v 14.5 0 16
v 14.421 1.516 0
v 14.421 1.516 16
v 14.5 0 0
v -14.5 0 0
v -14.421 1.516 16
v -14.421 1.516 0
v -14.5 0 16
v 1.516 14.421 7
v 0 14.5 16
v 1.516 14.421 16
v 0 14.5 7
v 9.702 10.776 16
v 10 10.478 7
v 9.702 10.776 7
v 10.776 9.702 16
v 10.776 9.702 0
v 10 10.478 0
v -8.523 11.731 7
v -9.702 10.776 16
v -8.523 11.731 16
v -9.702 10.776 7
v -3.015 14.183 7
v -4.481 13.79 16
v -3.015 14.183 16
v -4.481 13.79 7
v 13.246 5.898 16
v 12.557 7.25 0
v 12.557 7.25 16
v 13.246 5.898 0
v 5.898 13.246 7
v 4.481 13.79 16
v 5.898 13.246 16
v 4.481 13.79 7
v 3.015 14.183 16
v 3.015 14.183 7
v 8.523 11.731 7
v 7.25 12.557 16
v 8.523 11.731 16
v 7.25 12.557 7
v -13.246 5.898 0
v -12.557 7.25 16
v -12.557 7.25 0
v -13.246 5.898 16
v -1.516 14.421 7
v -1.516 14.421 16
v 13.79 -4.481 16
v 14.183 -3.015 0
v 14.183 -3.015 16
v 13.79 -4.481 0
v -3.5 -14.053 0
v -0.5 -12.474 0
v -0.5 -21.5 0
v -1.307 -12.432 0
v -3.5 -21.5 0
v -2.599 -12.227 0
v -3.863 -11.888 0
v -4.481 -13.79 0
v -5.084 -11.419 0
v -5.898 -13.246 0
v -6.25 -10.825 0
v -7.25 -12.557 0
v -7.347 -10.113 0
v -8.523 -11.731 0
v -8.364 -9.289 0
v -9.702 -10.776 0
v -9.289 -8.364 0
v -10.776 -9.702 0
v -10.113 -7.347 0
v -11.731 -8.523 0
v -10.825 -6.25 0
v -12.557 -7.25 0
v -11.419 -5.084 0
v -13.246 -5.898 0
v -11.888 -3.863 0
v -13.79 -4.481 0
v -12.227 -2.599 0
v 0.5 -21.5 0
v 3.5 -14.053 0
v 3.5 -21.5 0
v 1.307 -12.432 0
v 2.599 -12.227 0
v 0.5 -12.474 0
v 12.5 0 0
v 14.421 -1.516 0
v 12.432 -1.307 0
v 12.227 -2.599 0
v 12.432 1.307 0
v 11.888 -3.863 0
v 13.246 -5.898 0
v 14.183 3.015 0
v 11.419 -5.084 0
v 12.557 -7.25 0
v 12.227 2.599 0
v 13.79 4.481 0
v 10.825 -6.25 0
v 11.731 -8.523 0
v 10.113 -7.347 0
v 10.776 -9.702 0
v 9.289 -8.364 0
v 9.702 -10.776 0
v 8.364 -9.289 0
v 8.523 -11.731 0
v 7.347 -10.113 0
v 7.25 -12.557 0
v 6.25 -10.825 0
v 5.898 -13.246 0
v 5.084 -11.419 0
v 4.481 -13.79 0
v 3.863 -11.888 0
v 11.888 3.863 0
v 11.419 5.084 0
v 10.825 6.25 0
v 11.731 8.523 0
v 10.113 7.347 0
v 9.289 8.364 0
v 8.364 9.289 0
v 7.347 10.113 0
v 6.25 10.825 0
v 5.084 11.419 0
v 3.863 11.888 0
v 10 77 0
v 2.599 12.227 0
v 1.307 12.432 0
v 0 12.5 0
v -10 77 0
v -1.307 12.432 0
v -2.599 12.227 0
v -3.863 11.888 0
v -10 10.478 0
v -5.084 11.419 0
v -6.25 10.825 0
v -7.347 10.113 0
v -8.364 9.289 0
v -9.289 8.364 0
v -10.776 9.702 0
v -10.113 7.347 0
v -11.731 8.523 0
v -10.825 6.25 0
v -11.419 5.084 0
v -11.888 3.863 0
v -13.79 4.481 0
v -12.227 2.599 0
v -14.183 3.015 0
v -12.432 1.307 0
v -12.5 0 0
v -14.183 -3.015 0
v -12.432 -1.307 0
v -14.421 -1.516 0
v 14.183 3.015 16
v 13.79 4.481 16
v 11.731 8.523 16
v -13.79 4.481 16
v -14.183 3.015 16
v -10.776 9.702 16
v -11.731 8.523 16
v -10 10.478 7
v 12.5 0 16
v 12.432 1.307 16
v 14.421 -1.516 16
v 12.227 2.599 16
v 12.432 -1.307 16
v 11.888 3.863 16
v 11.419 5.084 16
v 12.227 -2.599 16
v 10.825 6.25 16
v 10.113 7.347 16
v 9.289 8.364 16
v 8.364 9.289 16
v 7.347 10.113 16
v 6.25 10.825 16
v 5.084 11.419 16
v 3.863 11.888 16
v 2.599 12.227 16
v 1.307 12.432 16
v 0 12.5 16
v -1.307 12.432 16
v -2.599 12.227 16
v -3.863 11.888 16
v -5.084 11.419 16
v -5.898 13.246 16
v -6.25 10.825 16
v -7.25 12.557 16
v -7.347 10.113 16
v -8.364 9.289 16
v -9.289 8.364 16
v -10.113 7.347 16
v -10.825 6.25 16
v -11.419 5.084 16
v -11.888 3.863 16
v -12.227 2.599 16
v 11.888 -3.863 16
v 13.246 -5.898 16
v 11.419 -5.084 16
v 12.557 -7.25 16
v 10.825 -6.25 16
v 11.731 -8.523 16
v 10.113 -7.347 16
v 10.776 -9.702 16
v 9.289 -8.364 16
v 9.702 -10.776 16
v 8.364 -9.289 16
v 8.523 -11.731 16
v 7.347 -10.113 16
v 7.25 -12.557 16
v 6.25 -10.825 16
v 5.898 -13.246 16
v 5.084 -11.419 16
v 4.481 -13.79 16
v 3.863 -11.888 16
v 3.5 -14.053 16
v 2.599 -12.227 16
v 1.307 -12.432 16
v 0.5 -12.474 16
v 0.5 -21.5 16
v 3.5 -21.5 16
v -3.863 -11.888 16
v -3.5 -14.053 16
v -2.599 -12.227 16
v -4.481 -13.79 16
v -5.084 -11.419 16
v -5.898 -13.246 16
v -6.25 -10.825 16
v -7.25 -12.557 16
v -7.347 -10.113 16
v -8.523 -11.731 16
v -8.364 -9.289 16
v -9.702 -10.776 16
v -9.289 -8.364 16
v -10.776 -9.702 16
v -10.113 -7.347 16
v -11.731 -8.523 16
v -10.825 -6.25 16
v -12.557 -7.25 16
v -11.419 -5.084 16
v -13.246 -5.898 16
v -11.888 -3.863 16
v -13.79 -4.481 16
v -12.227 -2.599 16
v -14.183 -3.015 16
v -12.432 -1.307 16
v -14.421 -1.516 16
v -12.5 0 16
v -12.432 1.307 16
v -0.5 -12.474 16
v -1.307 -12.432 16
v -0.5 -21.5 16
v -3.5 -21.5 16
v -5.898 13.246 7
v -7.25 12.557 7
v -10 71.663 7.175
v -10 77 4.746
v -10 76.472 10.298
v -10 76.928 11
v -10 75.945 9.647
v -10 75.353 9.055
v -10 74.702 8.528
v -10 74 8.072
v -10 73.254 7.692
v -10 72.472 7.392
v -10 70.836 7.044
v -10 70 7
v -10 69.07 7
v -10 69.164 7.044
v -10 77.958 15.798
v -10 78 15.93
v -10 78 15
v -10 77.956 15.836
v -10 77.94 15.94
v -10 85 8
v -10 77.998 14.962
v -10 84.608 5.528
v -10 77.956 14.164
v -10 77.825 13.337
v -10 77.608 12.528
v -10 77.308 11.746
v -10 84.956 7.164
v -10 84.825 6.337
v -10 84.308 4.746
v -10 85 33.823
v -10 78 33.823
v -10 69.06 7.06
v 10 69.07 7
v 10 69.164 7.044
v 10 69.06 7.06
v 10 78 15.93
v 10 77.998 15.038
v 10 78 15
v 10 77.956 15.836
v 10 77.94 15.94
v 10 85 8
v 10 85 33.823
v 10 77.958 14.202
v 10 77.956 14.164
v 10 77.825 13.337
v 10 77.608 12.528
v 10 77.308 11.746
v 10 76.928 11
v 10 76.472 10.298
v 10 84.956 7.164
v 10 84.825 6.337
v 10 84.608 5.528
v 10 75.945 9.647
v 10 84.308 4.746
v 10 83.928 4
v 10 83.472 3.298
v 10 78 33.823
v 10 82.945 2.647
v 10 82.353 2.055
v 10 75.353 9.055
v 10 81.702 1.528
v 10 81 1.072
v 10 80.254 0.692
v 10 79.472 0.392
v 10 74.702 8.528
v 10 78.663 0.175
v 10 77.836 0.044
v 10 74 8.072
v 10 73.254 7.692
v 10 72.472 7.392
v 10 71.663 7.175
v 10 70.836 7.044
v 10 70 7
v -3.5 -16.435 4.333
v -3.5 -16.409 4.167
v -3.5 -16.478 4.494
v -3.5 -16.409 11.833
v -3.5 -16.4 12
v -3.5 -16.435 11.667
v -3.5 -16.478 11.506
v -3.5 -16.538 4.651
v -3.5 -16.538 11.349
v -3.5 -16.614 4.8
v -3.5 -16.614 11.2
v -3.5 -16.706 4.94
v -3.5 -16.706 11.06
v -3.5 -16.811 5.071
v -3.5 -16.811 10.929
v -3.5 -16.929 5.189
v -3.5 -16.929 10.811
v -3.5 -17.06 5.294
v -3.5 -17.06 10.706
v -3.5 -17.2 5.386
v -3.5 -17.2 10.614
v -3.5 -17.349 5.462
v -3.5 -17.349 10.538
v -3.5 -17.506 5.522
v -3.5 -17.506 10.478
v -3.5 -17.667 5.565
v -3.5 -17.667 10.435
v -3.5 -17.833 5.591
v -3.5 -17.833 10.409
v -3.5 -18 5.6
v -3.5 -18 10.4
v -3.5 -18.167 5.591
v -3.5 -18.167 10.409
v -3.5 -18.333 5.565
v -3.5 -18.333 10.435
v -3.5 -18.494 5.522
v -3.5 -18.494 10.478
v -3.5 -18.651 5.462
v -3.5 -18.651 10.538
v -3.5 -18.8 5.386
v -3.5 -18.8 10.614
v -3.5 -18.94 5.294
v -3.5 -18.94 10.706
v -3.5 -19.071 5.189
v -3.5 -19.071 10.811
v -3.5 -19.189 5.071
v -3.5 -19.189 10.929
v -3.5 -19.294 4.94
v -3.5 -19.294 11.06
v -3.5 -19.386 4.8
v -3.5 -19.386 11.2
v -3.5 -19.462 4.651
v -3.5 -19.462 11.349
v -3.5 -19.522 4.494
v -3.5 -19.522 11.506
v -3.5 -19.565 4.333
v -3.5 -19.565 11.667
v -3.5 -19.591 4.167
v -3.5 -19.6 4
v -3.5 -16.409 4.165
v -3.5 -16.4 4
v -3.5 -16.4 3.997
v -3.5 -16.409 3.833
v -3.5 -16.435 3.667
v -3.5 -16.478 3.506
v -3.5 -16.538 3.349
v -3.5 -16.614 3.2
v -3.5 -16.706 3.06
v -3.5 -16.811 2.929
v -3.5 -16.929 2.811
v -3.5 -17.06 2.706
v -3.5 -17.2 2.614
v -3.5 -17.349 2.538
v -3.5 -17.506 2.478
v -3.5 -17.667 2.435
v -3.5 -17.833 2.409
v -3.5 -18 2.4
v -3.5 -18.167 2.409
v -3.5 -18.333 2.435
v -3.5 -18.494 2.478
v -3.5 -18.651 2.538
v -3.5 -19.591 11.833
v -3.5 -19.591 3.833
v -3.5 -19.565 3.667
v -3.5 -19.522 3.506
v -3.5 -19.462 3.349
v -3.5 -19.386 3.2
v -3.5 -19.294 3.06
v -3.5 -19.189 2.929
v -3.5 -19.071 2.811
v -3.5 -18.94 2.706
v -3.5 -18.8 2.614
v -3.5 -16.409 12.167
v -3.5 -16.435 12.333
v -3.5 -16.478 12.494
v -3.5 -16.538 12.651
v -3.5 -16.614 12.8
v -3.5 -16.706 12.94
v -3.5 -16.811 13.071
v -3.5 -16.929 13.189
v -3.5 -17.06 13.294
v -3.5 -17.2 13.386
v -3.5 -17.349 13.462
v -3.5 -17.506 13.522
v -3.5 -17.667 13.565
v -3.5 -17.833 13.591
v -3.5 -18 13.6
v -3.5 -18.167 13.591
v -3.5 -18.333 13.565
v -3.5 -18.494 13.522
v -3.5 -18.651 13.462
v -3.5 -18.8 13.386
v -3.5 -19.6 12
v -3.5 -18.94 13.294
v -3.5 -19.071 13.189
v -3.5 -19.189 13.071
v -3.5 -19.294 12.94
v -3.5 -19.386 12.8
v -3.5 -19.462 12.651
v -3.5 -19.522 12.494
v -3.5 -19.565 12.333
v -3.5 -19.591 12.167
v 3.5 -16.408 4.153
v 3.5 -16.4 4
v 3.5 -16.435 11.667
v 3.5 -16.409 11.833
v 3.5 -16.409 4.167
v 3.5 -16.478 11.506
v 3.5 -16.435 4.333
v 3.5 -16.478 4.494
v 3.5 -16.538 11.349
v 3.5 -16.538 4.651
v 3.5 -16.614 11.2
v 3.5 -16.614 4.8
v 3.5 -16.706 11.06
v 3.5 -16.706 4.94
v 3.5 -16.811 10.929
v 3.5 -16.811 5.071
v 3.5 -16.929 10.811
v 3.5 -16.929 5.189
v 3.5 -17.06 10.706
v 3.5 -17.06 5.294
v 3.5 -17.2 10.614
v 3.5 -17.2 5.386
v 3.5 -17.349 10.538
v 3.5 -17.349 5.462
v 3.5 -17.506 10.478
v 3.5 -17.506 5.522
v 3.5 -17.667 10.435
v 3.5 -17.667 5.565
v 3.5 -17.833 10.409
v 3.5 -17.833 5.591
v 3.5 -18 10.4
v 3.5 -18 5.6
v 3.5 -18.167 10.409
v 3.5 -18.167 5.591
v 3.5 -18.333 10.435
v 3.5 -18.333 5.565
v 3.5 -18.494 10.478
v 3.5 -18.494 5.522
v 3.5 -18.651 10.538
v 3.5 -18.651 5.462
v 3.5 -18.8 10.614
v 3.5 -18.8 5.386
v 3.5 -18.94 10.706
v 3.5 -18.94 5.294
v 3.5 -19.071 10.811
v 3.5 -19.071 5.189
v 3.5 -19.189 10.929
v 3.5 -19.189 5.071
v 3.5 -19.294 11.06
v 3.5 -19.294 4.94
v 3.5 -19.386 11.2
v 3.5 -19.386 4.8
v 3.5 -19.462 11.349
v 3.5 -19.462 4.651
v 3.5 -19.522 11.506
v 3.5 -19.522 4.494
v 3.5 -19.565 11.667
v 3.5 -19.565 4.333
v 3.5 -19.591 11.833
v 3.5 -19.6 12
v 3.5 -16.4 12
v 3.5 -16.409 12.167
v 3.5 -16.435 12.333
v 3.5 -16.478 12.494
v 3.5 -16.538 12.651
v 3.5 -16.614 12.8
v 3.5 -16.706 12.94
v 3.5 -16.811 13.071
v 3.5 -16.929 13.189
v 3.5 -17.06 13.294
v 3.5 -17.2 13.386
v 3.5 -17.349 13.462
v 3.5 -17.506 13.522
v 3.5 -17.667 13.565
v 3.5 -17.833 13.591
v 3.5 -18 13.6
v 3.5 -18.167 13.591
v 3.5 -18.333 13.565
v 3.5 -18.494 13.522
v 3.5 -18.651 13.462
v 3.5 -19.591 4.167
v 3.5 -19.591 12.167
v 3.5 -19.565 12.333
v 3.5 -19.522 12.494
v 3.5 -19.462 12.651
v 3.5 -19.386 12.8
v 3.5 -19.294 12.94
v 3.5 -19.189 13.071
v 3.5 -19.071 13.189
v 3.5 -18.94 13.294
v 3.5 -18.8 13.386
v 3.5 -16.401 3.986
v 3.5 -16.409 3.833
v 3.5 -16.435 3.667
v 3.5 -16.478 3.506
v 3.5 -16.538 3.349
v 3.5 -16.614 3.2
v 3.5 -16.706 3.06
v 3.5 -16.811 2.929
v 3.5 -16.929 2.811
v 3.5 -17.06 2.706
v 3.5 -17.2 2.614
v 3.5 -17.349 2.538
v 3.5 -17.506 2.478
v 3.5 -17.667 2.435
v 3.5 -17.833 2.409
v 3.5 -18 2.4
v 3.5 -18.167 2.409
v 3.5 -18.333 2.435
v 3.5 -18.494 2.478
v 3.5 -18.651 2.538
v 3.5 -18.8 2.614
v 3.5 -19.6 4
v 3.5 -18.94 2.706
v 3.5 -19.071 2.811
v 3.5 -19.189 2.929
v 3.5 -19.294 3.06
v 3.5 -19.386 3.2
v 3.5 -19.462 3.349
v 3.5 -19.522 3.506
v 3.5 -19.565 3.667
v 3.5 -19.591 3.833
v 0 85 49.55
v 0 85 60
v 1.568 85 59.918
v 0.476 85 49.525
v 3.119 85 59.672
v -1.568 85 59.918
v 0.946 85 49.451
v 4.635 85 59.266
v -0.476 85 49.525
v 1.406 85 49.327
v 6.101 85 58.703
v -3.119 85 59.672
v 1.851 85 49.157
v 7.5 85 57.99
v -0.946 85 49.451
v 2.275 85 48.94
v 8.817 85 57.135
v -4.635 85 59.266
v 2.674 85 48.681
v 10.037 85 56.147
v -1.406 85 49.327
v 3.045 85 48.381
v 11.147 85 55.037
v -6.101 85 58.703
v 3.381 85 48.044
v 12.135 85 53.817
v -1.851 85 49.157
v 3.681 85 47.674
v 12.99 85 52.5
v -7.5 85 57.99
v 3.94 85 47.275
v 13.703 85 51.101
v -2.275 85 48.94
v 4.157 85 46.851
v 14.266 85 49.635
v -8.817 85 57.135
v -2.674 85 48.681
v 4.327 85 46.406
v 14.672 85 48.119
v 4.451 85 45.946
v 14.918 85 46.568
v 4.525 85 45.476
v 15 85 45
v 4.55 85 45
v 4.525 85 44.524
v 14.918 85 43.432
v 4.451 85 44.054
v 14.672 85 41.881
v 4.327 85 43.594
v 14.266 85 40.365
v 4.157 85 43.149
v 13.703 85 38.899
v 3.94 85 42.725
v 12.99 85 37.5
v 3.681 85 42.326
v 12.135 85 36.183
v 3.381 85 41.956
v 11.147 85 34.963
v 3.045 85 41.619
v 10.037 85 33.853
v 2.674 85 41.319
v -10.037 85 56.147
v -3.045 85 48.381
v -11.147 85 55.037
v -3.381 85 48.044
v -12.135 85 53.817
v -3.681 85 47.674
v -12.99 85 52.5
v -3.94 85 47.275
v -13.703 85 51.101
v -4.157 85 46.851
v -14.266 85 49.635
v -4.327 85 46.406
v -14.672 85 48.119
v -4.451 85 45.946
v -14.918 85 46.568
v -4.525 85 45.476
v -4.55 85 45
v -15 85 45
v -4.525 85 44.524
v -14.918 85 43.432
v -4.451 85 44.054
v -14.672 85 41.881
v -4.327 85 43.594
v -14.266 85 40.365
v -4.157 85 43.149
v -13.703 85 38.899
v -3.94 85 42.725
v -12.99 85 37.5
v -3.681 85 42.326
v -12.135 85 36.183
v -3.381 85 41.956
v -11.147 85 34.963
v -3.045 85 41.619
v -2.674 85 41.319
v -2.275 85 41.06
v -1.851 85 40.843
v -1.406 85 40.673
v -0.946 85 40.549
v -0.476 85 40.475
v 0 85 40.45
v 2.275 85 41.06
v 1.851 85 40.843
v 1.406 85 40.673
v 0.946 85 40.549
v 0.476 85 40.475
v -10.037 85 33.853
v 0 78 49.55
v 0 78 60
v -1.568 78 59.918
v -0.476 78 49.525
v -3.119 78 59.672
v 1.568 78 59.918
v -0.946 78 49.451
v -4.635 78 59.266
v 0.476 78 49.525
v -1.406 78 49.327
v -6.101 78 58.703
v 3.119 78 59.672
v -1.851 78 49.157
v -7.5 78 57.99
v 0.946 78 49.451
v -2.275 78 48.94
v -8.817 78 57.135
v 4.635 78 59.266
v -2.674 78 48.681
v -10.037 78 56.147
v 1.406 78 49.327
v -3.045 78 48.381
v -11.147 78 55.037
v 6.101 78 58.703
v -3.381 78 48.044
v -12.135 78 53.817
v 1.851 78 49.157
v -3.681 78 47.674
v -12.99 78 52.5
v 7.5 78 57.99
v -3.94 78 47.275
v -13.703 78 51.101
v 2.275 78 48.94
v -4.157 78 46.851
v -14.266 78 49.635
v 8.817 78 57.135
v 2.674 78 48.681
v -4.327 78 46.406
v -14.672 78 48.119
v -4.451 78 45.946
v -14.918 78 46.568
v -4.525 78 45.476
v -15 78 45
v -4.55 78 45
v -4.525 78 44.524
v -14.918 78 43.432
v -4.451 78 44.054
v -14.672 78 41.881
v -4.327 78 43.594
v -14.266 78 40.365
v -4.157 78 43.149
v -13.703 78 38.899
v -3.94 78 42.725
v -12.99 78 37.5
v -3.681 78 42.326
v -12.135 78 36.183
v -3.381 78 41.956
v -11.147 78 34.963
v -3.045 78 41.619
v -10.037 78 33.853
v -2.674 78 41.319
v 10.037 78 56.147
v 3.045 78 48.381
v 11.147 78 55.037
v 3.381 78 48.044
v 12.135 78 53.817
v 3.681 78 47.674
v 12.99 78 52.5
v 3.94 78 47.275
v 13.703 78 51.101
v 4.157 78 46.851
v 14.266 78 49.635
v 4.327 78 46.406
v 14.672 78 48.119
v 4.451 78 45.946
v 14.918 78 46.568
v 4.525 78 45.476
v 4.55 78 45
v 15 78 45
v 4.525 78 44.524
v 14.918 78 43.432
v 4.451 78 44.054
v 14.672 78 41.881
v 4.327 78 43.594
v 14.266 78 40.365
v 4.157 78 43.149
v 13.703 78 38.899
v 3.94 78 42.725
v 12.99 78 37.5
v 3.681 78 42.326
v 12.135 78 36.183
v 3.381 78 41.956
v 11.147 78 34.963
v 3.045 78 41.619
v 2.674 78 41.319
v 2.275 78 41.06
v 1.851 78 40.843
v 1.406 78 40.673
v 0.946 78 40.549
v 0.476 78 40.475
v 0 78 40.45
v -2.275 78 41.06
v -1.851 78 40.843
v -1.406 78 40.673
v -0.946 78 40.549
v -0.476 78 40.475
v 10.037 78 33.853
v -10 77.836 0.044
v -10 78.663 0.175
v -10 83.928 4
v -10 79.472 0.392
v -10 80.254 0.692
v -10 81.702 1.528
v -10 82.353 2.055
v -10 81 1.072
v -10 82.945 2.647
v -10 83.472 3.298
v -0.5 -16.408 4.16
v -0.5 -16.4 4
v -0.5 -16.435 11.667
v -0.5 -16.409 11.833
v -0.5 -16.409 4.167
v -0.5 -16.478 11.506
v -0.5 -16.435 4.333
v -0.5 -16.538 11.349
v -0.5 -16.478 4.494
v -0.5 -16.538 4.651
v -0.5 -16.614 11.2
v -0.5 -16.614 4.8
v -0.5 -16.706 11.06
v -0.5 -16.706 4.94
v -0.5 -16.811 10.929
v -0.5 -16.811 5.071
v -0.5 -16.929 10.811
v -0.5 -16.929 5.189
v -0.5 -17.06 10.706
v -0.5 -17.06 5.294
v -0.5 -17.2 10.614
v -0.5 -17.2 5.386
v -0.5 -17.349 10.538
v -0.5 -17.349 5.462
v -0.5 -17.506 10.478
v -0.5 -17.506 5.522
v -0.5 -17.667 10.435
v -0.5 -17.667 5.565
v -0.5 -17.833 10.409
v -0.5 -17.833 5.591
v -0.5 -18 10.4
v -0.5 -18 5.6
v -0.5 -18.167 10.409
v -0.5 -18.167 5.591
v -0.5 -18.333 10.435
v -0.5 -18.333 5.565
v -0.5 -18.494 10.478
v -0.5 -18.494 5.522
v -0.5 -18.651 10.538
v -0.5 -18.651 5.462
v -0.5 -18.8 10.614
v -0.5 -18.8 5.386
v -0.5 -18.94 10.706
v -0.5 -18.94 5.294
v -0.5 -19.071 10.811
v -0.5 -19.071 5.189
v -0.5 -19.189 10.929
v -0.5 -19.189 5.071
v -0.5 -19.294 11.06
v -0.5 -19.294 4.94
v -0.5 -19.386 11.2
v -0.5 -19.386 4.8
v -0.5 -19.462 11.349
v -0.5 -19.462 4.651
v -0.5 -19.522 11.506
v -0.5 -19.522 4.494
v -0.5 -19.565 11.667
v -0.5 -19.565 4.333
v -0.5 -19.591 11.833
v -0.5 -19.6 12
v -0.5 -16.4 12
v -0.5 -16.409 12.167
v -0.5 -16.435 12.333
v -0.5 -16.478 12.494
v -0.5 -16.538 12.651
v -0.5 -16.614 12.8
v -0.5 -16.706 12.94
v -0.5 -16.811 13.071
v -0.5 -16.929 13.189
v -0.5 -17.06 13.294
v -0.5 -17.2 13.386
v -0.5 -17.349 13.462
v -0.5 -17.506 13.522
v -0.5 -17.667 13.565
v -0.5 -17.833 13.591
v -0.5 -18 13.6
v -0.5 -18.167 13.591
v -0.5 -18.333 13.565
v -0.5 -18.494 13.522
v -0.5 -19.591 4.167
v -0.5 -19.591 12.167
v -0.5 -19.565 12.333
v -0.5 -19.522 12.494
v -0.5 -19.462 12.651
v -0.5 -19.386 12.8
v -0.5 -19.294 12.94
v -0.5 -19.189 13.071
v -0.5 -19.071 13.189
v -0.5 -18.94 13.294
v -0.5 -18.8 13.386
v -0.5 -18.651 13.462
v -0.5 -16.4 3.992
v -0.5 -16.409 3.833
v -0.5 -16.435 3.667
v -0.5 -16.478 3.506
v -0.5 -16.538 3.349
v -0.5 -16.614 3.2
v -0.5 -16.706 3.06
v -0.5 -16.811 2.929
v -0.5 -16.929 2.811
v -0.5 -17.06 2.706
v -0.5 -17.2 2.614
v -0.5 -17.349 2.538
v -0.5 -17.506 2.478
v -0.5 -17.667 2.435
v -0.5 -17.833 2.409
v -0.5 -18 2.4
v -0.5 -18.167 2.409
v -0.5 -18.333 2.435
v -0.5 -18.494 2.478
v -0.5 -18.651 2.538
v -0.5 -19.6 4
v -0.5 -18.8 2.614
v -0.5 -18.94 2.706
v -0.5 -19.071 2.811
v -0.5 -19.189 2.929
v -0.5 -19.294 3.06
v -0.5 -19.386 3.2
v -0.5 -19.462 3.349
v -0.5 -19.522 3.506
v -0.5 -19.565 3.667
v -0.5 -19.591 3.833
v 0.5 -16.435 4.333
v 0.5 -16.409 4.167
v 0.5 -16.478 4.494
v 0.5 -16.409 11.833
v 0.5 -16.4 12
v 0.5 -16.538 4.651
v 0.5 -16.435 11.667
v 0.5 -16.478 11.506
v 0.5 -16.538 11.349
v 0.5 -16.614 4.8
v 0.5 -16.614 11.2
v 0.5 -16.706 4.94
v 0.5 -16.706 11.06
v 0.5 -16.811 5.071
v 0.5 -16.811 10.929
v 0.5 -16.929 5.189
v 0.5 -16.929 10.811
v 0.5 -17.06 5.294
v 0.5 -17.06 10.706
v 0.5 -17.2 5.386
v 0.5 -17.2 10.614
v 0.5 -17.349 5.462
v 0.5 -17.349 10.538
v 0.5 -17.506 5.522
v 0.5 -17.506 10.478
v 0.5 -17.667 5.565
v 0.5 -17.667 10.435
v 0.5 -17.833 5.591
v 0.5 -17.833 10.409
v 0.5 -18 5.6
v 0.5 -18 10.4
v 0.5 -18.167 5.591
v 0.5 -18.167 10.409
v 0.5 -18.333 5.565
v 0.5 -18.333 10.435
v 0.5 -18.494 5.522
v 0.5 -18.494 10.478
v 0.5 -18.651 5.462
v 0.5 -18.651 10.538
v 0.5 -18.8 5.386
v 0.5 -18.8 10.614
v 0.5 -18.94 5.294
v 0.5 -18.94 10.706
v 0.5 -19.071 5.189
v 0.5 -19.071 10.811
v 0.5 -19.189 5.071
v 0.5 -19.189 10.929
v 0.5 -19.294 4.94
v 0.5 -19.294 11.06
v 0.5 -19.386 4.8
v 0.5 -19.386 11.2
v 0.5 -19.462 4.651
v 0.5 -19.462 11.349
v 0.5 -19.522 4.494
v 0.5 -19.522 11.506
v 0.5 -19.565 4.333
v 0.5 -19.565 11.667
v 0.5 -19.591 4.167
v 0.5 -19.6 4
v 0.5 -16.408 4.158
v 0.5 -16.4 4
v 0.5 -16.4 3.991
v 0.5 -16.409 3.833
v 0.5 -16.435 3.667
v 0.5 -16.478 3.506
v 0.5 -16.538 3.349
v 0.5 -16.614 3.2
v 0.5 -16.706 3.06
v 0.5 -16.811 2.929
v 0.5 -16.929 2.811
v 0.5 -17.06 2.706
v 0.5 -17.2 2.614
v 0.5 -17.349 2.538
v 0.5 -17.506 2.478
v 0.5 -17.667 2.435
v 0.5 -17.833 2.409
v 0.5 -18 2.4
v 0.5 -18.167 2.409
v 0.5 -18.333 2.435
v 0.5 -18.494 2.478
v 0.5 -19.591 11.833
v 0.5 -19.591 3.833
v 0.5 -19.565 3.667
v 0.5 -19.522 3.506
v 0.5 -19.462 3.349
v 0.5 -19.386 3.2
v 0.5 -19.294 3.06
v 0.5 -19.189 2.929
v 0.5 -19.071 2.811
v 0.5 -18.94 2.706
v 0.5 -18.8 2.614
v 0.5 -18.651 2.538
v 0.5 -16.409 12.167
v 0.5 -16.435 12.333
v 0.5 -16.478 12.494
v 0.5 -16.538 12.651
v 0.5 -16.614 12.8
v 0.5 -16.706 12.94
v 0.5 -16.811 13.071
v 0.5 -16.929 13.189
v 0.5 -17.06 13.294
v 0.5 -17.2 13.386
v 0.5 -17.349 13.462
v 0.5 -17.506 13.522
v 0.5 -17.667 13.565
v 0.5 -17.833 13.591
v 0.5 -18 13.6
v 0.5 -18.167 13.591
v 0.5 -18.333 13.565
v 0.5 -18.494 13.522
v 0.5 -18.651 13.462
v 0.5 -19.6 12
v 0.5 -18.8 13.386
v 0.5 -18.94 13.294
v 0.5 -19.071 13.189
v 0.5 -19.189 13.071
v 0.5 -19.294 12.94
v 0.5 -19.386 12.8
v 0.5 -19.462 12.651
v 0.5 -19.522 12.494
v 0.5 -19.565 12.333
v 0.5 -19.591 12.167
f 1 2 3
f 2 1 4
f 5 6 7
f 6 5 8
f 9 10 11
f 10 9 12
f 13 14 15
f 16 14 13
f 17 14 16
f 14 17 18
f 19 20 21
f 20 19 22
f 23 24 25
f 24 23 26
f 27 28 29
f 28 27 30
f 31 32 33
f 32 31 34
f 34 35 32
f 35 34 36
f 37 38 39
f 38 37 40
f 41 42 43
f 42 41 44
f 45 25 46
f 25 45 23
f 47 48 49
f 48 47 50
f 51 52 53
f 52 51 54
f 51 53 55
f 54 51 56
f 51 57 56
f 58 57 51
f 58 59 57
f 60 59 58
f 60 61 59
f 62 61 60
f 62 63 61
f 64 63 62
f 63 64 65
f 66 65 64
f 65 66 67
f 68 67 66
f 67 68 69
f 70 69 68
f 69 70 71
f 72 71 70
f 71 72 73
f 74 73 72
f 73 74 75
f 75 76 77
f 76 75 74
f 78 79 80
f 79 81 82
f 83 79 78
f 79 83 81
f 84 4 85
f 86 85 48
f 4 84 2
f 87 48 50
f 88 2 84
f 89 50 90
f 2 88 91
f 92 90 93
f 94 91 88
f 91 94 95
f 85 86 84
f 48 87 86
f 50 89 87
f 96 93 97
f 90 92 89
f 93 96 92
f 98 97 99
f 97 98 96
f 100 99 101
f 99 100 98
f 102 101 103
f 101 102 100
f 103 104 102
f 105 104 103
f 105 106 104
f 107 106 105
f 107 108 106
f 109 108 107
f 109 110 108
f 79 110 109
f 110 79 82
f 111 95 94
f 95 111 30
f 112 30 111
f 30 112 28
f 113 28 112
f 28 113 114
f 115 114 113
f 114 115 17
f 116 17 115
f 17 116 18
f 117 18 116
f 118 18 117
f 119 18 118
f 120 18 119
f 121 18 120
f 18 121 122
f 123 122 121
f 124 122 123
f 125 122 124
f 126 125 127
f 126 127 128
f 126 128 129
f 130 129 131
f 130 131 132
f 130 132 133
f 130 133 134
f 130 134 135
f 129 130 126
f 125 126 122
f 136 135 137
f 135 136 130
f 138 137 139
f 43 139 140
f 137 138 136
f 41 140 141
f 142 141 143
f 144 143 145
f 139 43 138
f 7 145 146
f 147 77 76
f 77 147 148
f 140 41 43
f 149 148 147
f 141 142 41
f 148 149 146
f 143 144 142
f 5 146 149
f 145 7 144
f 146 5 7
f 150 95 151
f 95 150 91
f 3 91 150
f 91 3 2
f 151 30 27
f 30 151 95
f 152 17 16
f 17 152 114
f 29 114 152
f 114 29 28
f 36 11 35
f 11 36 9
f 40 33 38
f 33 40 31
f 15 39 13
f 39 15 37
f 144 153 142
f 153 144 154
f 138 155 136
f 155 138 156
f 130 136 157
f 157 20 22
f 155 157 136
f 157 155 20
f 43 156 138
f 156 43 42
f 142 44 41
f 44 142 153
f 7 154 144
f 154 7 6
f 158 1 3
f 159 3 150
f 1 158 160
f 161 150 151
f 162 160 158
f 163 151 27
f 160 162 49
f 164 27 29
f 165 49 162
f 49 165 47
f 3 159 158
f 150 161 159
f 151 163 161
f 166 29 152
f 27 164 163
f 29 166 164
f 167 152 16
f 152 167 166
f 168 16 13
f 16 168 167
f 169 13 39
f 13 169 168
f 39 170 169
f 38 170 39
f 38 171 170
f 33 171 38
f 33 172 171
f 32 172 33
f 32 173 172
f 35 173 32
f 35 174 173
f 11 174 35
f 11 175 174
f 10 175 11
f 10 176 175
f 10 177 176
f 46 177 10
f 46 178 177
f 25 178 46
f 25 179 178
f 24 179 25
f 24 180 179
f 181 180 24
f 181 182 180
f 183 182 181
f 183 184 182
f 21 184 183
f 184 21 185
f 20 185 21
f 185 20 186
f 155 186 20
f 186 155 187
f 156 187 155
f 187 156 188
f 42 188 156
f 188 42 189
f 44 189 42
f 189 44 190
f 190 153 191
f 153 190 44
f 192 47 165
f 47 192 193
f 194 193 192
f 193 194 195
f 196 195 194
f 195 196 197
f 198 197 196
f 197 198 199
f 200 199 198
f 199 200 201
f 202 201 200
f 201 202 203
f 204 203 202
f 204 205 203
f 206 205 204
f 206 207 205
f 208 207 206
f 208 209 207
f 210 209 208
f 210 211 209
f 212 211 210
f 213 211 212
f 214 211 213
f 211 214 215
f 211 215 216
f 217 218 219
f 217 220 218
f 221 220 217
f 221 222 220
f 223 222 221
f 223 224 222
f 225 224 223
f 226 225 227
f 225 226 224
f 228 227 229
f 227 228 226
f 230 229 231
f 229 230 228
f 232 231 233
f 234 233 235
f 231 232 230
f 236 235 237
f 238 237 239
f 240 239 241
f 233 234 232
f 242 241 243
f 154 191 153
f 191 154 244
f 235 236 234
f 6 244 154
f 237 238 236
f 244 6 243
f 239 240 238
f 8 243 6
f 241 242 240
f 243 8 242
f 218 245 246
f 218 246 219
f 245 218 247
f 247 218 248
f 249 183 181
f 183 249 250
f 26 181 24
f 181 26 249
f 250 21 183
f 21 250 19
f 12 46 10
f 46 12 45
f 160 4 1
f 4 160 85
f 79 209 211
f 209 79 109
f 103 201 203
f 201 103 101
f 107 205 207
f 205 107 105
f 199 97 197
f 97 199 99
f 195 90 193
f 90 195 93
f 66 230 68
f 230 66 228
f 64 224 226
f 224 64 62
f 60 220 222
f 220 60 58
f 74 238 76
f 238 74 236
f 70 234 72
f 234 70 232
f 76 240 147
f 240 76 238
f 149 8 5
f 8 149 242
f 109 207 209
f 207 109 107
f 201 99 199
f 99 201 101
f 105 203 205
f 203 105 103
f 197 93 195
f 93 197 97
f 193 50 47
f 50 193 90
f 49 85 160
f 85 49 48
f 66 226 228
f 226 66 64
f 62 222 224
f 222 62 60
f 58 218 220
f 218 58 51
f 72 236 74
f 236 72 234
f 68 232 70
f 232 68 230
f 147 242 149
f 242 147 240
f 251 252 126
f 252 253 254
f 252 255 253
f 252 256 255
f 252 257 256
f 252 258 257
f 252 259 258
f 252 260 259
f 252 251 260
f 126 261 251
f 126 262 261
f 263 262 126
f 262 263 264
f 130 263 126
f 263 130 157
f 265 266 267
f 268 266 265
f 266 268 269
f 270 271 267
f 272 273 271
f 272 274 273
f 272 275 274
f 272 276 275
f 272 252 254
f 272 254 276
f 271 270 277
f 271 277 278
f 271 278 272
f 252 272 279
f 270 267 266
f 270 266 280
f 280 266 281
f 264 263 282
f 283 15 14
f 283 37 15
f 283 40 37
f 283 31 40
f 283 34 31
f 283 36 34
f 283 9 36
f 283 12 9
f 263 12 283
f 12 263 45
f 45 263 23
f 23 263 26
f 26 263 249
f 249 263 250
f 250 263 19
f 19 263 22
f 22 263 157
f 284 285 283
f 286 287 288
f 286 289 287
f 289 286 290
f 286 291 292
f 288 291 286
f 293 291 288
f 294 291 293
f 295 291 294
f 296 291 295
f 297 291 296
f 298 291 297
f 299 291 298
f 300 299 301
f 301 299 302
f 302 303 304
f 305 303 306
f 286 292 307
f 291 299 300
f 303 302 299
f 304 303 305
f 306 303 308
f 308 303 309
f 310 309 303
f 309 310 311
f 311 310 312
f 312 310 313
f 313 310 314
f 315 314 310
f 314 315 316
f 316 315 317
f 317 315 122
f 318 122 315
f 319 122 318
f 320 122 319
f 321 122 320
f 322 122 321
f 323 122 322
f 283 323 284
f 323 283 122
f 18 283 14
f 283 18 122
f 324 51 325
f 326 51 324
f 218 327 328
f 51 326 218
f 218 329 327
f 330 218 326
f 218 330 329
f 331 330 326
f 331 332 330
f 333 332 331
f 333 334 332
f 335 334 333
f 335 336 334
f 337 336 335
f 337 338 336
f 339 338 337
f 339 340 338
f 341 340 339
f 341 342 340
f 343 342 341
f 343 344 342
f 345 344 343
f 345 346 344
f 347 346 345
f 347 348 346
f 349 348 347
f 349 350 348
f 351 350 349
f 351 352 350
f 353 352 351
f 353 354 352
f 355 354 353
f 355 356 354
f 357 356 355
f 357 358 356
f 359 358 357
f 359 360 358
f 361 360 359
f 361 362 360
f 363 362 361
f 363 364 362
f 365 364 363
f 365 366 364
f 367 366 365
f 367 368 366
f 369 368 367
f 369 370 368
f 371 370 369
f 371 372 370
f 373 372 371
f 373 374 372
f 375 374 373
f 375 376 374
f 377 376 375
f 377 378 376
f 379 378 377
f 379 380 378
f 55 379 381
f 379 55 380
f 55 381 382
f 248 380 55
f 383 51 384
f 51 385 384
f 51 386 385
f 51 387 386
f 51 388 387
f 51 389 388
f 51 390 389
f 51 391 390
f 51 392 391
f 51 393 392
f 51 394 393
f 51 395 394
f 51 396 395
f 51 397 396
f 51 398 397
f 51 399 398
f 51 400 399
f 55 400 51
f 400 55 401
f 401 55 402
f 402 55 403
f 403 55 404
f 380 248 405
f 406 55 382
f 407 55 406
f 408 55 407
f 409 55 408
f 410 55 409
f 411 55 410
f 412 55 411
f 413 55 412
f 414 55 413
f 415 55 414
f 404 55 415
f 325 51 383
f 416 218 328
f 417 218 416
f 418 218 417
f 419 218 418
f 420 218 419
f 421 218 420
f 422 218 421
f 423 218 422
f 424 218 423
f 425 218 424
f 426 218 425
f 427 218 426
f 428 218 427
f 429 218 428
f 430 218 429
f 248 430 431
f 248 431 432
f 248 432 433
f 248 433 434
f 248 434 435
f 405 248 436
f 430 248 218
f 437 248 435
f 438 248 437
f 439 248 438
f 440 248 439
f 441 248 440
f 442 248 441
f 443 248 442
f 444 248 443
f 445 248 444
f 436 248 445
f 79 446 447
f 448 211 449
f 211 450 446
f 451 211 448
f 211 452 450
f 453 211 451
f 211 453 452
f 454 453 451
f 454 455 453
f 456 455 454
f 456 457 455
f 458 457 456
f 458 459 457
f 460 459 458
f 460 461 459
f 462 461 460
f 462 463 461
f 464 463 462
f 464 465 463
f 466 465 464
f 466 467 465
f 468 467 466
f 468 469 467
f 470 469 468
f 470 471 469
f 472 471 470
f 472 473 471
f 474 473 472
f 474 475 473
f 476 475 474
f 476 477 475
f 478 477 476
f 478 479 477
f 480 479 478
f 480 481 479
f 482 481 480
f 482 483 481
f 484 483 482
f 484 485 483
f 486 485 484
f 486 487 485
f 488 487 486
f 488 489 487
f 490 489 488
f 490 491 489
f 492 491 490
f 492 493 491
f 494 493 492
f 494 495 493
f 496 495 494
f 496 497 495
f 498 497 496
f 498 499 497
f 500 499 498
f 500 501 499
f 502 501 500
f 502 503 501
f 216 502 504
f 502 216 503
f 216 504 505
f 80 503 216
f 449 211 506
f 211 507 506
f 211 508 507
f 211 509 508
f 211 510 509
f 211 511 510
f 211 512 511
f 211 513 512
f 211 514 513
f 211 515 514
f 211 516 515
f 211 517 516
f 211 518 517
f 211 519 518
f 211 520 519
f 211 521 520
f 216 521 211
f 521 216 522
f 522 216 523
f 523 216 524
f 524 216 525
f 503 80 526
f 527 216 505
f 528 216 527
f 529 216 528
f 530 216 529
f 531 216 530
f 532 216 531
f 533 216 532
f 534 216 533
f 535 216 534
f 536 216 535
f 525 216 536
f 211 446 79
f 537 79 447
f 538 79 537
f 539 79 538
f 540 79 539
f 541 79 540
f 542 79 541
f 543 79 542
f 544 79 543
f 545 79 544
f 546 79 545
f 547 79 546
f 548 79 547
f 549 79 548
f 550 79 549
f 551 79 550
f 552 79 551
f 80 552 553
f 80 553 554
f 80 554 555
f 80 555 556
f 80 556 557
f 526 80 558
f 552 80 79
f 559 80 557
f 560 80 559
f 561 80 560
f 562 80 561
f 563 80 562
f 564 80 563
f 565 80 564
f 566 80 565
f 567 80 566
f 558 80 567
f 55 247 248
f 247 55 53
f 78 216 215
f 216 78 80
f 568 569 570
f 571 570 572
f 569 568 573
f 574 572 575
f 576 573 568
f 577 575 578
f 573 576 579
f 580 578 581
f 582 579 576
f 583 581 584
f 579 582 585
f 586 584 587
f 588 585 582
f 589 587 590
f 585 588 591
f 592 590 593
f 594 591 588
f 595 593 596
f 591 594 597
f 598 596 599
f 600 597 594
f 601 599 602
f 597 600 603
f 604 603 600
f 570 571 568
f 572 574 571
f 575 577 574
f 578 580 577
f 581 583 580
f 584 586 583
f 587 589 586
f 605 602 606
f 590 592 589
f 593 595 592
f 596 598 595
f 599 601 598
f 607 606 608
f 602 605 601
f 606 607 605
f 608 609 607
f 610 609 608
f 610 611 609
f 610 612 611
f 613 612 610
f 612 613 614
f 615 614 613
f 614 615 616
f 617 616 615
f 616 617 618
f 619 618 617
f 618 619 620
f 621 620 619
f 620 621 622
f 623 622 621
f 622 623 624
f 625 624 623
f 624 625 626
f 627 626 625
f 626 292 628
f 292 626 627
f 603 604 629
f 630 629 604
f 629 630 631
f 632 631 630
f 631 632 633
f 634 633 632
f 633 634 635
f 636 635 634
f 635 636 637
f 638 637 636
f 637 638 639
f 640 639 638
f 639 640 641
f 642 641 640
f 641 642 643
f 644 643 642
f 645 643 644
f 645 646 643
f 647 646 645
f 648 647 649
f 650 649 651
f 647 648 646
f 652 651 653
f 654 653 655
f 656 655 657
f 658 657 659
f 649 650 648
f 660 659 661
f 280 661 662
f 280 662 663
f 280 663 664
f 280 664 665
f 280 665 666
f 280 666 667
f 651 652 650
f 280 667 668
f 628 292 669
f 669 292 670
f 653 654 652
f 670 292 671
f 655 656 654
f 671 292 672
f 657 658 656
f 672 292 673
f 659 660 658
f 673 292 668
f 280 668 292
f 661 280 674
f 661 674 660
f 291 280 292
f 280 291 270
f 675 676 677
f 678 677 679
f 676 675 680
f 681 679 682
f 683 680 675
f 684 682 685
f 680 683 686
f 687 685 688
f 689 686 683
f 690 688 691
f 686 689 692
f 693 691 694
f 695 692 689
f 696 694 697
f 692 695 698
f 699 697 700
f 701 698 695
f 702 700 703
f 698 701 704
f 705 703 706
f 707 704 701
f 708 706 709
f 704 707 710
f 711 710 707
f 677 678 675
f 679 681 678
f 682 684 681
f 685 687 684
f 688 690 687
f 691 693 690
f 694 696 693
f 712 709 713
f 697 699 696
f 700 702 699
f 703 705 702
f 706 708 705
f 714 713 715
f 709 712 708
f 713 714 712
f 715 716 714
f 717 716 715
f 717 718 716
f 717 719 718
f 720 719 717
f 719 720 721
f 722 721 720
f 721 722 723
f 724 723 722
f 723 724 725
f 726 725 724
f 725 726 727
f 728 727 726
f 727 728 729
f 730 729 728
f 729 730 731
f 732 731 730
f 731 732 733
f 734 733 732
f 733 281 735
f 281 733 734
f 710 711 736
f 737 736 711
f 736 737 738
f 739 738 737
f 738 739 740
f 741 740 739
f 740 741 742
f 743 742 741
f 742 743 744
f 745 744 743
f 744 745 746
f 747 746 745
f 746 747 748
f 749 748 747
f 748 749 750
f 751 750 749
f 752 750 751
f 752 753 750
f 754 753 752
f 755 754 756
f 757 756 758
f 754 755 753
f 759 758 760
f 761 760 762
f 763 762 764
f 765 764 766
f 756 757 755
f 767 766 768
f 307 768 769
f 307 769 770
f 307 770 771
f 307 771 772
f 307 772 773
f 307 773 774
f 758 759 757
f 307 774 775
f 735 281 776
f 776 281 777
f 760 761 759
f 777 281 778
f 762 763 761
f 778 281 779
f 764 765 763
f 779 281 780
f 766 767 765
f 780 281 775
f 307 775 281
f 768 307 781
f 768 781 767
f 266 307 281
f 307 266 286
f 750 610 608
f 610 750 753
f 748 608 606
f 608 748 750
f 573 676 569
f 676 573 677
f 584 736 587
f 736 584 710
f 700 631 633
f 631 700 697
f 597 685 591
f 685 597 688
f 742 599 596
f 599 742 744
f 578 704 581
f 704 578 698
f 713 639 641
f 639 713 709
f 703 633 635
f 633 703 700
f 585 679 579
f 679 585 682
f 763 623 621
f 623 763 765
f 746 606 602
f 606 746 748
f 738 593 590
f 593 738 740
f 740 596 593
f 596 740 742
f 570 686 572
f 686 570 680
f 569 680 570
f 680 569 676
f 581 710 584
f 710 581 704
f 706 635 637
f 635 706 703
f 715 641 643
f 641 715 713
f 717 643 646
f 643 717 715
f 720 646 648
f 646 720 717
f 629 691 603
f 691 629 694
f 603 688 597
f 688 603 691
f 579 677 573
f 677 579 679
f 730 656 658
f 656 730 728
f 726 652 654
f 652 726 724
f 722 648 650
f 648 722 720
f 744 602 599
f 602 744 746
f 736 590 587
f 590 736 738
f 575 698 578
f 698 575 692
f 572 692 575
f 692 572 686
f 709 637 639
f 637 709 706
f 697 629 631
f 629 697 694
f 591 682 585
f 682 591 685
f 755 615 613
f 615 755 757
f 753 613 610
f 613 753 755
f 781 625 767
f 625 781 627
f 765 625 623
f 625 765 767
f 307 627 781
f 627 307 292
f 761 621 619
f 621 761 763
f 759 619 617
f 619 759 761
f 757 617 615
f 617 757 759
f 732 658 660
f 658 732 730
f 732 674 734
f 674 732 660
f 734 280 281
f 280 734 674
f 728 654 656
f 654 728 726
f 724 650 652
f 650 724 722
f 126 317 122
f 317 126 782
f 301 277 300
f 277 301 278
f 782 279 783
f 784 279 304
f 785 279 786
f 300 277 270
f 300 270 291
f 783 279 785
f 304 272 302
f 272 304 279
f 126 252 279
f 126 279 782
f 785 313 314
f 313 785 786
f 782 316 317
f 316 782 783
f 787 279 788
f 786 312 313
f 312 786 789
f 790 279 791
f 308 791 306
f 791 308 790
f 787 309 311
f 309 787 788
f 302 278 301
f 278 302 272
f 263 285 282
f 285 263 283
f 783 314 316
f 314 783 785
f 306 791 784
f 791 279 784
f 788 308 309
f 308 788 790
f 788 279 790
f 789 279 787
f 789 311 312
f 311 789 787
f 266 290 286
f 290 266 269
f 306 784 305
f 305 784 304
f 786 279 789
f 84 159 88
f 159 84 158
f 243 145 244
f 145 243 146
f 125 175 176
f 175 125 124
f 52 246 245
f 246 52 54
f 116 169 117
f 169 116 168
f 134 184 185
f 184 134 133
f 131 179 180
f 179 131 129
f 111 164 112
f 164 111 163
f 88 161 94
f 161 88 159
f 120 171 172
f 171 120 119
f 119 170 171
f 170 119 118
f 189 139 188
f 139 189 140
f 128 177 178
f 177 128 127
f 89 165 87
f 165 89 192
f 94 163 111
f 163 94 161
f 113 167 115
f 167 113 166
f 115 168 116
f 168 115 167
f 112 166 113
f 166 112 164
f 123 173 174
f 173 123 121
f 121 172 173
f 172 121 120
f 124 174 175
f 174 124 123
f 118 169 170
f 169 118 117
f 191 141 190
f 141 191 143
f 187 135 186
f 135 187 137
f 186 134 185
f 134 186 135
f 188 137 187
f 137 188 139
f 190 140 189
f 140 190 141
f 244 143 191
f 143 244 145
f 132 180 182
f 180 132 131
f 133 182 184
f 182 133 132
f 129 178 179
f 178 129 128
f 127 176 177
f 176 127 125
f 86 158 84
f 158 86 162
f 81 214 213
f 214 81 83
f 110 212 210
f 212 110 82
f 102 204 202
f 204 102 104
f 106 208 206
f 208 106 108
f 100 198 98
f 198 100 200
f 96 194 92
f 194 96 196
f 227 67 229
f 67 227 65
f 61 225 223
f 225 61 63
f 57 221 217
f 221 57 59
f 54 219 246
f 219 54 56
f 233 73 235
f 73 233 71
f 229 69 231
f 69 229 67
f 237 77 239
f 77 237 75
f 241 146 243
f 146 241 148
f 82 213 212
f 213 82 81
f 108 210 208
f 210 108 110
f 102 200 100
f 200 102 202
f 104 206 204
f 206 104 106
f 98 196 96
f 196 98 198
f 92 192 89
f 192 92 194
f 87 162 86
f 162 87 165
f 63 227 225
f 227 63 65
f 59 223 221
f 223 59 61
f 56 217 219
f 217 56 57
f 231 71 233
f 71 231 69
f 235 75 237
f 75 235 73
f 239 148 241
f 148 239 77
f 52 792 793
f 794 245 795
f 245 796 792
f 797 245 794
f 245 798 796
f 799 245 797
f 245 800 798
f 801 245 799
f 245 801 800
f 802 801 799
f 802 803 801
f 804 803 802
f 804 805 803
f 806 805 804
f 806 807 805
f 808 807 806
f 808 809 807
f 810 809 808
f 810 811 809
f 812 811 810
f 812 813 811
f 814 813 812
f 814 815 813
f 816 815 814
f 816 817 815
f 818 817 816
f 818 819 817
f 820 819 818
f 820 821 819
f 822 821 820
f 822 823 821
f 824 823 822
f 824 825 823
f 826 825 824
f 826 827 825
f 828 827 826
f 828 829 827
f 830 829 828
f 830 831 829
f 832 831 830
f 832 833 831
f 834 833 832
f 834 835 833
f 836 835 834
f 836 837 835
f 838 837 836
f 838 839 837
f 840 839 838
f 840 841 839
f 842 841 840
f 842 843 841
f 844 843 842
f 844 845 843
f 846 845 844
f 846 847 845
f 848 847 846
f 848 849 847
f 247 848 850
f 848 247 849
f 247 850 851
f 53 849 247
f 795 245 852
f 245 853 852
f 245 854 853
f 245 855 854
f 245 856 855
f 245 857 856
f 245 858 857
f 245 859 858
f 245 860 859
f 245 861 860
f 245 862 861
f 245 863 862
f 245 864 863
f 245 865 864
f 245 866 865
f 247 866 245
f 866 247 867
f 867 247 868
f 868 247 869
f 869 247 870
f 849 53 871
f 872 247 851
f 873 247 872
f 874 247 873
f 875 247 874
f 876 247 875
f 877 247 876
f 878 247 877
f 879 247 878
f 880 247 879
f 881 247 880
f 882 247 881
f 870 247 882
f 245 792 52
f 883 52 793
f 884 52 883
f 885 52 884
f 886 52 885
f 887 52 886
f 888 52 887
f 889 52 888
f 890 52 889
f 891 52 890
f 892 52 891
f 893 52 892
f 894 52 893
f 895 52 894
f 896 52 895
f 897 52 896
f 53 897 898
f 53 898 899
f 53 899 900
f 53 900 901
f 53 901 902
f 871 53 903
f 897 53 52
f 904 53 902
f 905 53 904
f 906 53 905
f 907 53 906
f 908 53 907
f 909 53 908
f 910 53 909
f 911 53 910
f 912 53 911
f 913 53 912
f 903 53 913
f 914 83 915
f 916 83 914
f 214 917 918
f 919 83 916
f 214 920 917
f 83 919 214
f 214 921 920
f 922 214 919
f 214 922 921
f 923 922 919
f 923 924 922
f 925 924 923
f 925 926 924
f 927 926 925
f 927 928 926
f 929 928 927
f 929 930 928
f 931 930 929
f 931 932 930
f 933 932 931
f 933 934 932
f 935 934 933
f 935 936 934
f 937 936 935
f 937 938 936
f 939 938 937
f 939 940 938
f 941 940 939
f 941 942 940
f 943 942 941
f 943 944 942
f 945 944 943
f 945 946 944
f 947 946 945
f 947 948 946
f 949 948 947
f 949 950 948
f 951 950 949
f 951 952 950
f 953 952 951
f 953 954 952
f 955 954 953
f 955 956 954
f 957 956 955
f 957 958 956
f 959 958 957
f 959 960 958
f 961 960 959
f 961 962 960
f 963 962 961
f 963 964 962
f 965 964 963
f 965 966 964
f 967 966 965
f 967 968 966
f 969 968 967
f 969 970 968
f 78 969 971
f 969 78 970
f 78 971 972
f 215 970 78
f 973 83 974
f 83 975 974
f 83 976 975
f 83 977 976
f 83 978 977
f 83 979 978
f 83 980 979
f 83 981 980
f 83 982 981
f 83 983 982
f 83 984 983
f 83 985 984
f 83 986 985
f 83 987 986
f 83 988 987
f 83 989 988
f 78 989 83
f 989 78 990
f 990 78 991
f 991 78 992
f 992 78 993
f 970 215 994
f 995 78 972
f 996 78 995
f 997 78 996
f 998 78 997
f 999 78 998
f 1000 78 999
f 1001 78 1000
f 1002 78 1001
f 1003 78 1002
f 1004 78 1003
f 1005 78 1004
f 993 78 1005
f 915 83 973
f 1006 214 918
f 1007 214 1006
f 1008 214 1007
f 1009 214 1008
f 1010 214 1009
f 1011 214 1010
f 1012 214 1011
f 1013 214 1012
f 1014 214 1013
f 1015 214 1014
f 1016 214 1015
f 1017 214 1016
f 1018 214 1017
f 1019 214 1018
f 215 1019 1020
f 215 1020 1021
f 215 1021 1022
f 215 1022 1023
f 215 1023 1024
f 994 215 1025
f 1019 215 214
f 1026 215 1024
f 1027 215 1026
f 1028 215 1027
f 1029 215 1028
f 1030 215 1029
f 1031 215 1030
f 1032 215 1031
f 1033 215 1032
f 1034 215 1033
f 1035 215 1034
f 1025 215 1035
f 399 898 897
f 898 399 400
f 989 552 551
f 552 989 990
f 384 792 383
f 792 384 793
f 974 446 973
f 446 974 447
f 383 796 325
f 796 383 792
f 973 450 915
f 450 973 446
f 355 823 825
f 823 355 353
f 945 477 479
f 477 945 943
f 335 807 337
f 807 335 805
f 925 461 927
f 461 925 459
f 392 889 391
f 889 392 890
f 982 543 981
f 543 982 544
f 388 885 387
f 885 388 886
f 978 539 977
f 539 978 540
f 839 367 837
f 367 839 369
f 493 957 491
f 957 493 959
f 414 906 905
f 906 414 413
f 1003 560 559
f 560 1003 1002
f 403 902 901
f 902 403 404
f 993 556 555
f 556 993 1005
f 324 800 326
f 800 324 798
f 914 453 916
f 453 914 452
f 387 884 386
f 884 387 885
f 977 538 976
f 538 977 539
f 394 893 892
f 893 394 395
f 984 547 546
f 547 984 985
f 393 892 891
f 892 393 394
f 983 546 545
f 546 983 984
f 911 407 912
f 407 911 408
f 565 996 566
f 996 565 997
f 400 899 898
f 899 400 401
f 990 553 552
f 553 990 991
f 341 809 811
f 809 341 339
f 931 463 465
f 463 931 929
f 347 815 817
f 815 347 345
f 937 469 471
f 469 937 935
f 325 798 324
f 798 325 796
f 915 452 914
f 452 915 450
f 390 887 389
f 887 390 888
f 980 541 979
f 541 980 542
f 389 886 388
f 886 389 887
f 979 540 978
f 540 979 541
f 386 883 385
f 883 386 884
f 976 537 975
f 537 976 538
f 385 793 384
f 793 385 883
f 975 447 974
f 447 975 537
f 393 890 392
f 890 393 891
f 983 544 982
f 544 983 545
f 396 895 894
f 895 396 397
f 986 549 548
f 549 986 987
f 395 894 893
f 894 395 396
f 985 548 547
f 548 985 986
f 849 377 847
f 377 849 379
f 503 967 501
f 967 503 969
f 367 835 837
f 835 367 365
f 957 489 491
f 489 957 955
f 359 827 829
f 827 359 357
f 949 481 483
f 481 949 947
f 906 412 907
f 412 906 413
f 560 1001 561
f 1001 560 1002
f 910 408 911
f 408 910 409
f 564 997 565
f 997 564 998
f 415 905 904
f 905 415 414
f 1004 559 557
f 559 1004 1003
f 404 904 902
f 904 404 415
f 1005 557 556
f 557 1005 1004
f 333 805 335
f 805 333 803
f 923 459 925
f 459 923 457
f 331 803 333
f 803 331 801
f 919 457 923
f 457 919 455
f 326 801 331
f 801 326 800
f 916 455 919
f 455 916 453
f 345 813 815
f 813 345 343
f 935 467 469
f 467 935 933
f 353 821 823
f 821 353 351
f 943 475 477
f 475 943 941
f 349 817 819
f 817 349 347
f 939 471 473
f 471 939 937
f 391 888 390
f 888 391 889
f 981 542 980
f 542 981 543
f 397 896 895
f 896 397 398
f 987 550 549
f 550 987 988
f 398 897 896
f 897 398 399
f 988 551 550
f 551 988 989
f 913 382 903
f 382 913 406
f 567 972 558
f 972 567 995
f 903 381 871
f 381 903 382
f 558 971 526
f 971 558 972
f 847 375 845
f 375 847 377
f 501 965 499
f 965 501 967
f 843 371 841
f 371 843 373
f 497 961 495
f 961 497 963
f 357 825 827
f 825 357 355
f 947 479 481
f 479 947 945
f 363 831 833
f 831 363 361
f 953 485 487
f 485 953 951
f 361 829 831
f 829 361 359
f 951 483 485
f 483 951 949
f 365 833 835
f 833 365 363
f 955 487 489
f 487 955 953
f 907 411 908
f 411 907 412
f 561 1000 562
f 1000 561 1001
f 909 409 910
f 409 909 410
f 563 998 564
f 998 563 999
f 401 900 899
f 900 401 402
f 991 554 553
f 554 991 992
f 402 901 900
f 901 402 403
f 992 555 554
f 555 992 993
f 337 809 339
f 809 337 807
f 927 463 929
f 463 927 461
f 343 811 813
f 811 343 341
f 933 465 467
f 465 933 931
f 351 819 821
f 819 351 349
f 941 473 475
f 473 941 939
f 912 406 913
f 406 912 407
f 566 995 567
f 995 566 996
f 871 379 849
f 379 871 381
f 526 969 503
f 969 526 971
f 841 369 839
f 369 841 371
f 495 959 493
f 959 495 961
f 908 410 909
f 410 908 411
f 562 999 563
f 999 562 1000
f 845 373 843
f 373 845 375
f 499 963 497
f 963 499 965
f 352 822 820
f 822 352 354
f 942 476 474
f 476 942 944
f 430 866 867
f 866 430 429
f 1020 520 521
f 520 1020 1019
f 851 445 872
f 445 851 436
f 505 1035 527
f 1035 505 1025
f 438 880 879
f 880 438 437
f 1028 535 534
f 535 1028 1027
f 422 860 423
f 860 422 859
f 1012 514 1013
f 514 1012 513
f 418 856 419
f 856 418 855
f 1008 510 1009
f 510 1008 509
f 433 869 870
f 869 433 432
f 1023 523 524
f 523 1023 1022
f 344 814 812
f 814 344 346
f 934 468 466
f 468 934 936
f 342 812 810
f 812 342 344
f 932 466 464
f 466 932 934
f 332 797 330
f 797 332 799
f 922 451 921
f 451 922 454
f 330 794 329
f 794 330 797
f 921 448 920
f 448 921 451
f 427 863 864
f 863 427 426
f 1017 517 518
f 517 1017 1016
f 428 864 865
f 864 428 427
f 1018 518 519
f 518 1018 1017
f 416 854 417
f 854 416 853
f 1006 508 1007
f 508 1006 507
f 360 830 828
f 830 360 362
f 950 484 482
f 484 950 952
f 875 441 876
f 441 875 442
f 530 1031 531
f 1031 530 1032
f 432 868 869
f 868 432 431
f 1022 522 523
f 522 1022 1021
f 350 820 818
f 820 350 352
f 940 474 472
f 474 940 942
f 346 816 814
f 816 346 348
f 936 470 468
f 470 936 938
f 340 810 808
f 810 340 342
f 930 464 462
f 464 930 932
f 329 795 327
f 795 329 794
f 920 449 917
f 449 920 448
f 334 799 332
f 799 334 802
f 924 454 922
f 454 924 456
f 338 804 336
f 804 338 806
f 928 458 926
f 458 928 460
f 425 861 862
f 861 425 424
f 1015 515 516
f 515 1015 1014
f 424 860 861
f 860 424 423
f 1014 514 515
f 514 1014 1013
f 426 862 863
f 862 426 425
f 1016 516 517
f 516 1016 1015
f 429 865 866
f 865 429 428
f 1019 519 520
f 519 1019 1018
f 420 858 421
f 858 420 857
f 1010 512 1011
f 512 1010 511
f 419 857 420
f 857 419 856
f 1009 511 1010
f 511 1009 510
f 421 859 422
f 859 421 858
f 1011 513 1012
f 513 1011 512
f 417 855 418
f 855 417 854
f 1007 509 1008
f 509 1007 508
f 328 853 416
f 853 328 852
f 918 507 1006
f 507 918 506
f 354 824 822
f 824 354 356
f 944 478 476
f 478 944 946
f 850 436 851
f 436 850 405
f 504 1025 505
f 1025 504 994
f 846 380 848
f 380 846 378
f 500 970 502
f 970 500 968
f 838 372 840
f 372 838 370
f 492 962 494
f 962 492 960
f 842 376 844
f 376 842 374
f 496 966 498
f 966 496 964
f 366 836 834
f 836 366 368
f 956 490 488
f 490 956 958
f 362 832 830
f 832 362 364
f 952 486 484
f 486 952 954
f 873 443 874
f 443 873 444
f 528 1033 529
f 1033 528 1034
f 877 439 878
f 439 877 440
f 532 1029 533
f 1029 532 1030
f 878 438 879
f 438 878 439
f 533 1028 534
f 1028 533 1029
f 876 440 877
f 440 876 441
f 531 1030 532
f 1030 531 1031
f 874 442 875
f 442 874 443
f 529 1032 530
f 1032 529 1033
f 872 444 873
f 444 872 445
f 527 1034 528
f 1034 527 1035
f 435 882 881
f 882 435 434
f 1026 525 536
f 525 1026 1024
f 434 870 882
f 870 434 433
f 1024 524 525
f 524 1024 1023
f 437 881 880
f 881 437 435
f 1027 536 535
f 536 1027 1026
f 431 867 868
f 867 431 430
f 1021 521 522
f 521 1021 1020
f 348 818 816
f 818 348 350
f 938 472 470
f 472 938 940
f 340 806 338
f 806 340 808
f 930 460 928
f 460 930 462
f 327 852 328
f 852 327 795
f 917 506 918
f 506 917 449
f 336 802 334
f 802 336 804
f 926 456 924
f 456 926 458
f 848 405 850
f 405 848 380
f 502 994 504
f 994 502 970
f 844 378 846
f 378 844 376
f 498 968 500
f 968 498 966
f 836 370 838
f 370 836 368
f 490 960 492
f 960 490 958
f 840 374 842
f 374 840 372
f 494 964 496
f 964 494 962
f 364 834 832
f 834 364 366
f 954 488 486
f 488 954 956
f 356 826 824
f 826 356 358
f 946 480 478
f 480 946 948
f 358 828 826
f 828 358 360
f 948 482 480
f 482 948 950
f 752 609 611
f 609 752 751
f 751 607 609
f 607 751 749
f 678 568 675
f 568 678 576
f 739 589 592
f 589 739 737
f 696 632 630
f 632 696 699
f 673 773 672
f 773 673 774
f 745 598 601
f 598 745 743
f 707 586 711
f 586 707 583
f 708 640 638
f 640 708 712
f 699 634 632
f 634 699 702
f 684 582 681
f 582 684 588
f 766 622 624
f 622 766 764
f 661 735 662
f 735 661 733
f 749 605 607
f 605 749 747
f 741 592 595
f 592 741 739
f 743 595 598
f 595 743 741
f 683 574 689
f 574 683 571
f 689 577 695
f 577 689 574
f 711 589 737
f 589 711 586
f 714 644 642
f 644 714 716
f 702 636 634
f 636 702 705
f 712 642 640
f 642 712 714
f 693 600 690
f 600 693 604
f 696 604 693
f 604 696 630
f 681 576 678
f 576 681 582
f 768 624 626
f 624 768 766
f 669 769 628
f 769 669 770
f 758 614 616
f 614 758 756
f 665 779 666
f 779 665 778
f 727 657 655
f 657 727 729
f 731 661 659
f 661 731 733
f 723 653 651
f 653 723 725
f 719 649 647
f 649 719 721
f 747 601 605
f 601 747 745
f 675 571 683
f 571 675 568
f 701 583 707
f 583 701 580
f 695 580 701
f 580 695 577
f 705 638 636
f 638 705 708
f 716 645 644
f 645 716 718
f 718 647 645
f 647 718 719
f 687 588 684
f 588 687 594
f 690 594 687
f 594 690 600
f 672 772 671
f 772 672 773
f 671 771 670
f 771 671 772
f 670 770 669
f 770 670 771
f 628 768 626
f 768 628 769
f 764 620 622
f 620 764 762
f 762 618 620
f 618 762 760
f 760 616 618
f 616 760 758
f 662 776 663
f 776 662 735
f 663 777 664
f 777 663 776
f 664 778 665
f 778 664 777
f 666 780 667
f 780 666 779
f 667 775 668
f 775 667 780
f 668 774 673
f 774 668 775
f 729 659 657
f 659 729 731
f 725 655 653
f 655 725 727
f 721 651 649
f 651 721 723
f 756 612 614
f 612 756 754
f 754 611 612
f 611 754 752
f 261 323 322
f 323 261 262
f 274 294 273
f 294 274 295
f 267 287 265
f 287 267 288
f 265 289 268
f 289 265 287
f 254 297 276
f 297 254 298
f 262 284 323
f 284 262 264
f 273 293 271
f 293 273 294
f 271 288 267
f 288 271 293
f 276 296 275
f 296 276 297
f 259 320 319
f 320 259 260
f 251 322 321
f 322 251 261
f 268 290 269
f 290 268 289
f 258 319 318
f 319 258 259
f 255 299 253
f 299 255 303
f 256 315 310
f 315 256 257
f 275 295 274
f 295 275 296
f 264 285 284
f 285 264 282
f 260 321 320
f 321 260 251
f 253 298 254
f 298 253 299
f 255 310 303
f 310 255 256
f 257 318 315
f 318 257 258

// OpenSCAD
$fn=60;

difference(){
union(){
cylinder(d=29,h=16);
translate([-10,9,0]) cube(size=[20,68,7]);
translate([-3.5,-21.5,0]) cube(size=[7,8,16]);
translate([-10,78,8])cube(size=[20,7,37]);
translate([0,85,45])rotate([90,0,0])cylinder(r=15,h=7);
translate([-10,77,8])rotate([0,90,0])cylinder(r=8,h=20);    
}
translate([0,0,-1]) cylinder(d=25,h=22);
translate([-.5,-25,-1]) cube(size=[1,20,22]);
translate ([-5,-18,4])rotate([0,90,0])cylinder(d=3.2,h=100);
translate ([-5,-18,12])rotate([0,90,0])cylinder(d=3.2,h=100);
translate([0,86,45])rotate([90,0,0])cylinder(r=4.55,h=10);
translate([-11,70,15])rotate([0,90,0])cylinder(r=8,h=22);
}
